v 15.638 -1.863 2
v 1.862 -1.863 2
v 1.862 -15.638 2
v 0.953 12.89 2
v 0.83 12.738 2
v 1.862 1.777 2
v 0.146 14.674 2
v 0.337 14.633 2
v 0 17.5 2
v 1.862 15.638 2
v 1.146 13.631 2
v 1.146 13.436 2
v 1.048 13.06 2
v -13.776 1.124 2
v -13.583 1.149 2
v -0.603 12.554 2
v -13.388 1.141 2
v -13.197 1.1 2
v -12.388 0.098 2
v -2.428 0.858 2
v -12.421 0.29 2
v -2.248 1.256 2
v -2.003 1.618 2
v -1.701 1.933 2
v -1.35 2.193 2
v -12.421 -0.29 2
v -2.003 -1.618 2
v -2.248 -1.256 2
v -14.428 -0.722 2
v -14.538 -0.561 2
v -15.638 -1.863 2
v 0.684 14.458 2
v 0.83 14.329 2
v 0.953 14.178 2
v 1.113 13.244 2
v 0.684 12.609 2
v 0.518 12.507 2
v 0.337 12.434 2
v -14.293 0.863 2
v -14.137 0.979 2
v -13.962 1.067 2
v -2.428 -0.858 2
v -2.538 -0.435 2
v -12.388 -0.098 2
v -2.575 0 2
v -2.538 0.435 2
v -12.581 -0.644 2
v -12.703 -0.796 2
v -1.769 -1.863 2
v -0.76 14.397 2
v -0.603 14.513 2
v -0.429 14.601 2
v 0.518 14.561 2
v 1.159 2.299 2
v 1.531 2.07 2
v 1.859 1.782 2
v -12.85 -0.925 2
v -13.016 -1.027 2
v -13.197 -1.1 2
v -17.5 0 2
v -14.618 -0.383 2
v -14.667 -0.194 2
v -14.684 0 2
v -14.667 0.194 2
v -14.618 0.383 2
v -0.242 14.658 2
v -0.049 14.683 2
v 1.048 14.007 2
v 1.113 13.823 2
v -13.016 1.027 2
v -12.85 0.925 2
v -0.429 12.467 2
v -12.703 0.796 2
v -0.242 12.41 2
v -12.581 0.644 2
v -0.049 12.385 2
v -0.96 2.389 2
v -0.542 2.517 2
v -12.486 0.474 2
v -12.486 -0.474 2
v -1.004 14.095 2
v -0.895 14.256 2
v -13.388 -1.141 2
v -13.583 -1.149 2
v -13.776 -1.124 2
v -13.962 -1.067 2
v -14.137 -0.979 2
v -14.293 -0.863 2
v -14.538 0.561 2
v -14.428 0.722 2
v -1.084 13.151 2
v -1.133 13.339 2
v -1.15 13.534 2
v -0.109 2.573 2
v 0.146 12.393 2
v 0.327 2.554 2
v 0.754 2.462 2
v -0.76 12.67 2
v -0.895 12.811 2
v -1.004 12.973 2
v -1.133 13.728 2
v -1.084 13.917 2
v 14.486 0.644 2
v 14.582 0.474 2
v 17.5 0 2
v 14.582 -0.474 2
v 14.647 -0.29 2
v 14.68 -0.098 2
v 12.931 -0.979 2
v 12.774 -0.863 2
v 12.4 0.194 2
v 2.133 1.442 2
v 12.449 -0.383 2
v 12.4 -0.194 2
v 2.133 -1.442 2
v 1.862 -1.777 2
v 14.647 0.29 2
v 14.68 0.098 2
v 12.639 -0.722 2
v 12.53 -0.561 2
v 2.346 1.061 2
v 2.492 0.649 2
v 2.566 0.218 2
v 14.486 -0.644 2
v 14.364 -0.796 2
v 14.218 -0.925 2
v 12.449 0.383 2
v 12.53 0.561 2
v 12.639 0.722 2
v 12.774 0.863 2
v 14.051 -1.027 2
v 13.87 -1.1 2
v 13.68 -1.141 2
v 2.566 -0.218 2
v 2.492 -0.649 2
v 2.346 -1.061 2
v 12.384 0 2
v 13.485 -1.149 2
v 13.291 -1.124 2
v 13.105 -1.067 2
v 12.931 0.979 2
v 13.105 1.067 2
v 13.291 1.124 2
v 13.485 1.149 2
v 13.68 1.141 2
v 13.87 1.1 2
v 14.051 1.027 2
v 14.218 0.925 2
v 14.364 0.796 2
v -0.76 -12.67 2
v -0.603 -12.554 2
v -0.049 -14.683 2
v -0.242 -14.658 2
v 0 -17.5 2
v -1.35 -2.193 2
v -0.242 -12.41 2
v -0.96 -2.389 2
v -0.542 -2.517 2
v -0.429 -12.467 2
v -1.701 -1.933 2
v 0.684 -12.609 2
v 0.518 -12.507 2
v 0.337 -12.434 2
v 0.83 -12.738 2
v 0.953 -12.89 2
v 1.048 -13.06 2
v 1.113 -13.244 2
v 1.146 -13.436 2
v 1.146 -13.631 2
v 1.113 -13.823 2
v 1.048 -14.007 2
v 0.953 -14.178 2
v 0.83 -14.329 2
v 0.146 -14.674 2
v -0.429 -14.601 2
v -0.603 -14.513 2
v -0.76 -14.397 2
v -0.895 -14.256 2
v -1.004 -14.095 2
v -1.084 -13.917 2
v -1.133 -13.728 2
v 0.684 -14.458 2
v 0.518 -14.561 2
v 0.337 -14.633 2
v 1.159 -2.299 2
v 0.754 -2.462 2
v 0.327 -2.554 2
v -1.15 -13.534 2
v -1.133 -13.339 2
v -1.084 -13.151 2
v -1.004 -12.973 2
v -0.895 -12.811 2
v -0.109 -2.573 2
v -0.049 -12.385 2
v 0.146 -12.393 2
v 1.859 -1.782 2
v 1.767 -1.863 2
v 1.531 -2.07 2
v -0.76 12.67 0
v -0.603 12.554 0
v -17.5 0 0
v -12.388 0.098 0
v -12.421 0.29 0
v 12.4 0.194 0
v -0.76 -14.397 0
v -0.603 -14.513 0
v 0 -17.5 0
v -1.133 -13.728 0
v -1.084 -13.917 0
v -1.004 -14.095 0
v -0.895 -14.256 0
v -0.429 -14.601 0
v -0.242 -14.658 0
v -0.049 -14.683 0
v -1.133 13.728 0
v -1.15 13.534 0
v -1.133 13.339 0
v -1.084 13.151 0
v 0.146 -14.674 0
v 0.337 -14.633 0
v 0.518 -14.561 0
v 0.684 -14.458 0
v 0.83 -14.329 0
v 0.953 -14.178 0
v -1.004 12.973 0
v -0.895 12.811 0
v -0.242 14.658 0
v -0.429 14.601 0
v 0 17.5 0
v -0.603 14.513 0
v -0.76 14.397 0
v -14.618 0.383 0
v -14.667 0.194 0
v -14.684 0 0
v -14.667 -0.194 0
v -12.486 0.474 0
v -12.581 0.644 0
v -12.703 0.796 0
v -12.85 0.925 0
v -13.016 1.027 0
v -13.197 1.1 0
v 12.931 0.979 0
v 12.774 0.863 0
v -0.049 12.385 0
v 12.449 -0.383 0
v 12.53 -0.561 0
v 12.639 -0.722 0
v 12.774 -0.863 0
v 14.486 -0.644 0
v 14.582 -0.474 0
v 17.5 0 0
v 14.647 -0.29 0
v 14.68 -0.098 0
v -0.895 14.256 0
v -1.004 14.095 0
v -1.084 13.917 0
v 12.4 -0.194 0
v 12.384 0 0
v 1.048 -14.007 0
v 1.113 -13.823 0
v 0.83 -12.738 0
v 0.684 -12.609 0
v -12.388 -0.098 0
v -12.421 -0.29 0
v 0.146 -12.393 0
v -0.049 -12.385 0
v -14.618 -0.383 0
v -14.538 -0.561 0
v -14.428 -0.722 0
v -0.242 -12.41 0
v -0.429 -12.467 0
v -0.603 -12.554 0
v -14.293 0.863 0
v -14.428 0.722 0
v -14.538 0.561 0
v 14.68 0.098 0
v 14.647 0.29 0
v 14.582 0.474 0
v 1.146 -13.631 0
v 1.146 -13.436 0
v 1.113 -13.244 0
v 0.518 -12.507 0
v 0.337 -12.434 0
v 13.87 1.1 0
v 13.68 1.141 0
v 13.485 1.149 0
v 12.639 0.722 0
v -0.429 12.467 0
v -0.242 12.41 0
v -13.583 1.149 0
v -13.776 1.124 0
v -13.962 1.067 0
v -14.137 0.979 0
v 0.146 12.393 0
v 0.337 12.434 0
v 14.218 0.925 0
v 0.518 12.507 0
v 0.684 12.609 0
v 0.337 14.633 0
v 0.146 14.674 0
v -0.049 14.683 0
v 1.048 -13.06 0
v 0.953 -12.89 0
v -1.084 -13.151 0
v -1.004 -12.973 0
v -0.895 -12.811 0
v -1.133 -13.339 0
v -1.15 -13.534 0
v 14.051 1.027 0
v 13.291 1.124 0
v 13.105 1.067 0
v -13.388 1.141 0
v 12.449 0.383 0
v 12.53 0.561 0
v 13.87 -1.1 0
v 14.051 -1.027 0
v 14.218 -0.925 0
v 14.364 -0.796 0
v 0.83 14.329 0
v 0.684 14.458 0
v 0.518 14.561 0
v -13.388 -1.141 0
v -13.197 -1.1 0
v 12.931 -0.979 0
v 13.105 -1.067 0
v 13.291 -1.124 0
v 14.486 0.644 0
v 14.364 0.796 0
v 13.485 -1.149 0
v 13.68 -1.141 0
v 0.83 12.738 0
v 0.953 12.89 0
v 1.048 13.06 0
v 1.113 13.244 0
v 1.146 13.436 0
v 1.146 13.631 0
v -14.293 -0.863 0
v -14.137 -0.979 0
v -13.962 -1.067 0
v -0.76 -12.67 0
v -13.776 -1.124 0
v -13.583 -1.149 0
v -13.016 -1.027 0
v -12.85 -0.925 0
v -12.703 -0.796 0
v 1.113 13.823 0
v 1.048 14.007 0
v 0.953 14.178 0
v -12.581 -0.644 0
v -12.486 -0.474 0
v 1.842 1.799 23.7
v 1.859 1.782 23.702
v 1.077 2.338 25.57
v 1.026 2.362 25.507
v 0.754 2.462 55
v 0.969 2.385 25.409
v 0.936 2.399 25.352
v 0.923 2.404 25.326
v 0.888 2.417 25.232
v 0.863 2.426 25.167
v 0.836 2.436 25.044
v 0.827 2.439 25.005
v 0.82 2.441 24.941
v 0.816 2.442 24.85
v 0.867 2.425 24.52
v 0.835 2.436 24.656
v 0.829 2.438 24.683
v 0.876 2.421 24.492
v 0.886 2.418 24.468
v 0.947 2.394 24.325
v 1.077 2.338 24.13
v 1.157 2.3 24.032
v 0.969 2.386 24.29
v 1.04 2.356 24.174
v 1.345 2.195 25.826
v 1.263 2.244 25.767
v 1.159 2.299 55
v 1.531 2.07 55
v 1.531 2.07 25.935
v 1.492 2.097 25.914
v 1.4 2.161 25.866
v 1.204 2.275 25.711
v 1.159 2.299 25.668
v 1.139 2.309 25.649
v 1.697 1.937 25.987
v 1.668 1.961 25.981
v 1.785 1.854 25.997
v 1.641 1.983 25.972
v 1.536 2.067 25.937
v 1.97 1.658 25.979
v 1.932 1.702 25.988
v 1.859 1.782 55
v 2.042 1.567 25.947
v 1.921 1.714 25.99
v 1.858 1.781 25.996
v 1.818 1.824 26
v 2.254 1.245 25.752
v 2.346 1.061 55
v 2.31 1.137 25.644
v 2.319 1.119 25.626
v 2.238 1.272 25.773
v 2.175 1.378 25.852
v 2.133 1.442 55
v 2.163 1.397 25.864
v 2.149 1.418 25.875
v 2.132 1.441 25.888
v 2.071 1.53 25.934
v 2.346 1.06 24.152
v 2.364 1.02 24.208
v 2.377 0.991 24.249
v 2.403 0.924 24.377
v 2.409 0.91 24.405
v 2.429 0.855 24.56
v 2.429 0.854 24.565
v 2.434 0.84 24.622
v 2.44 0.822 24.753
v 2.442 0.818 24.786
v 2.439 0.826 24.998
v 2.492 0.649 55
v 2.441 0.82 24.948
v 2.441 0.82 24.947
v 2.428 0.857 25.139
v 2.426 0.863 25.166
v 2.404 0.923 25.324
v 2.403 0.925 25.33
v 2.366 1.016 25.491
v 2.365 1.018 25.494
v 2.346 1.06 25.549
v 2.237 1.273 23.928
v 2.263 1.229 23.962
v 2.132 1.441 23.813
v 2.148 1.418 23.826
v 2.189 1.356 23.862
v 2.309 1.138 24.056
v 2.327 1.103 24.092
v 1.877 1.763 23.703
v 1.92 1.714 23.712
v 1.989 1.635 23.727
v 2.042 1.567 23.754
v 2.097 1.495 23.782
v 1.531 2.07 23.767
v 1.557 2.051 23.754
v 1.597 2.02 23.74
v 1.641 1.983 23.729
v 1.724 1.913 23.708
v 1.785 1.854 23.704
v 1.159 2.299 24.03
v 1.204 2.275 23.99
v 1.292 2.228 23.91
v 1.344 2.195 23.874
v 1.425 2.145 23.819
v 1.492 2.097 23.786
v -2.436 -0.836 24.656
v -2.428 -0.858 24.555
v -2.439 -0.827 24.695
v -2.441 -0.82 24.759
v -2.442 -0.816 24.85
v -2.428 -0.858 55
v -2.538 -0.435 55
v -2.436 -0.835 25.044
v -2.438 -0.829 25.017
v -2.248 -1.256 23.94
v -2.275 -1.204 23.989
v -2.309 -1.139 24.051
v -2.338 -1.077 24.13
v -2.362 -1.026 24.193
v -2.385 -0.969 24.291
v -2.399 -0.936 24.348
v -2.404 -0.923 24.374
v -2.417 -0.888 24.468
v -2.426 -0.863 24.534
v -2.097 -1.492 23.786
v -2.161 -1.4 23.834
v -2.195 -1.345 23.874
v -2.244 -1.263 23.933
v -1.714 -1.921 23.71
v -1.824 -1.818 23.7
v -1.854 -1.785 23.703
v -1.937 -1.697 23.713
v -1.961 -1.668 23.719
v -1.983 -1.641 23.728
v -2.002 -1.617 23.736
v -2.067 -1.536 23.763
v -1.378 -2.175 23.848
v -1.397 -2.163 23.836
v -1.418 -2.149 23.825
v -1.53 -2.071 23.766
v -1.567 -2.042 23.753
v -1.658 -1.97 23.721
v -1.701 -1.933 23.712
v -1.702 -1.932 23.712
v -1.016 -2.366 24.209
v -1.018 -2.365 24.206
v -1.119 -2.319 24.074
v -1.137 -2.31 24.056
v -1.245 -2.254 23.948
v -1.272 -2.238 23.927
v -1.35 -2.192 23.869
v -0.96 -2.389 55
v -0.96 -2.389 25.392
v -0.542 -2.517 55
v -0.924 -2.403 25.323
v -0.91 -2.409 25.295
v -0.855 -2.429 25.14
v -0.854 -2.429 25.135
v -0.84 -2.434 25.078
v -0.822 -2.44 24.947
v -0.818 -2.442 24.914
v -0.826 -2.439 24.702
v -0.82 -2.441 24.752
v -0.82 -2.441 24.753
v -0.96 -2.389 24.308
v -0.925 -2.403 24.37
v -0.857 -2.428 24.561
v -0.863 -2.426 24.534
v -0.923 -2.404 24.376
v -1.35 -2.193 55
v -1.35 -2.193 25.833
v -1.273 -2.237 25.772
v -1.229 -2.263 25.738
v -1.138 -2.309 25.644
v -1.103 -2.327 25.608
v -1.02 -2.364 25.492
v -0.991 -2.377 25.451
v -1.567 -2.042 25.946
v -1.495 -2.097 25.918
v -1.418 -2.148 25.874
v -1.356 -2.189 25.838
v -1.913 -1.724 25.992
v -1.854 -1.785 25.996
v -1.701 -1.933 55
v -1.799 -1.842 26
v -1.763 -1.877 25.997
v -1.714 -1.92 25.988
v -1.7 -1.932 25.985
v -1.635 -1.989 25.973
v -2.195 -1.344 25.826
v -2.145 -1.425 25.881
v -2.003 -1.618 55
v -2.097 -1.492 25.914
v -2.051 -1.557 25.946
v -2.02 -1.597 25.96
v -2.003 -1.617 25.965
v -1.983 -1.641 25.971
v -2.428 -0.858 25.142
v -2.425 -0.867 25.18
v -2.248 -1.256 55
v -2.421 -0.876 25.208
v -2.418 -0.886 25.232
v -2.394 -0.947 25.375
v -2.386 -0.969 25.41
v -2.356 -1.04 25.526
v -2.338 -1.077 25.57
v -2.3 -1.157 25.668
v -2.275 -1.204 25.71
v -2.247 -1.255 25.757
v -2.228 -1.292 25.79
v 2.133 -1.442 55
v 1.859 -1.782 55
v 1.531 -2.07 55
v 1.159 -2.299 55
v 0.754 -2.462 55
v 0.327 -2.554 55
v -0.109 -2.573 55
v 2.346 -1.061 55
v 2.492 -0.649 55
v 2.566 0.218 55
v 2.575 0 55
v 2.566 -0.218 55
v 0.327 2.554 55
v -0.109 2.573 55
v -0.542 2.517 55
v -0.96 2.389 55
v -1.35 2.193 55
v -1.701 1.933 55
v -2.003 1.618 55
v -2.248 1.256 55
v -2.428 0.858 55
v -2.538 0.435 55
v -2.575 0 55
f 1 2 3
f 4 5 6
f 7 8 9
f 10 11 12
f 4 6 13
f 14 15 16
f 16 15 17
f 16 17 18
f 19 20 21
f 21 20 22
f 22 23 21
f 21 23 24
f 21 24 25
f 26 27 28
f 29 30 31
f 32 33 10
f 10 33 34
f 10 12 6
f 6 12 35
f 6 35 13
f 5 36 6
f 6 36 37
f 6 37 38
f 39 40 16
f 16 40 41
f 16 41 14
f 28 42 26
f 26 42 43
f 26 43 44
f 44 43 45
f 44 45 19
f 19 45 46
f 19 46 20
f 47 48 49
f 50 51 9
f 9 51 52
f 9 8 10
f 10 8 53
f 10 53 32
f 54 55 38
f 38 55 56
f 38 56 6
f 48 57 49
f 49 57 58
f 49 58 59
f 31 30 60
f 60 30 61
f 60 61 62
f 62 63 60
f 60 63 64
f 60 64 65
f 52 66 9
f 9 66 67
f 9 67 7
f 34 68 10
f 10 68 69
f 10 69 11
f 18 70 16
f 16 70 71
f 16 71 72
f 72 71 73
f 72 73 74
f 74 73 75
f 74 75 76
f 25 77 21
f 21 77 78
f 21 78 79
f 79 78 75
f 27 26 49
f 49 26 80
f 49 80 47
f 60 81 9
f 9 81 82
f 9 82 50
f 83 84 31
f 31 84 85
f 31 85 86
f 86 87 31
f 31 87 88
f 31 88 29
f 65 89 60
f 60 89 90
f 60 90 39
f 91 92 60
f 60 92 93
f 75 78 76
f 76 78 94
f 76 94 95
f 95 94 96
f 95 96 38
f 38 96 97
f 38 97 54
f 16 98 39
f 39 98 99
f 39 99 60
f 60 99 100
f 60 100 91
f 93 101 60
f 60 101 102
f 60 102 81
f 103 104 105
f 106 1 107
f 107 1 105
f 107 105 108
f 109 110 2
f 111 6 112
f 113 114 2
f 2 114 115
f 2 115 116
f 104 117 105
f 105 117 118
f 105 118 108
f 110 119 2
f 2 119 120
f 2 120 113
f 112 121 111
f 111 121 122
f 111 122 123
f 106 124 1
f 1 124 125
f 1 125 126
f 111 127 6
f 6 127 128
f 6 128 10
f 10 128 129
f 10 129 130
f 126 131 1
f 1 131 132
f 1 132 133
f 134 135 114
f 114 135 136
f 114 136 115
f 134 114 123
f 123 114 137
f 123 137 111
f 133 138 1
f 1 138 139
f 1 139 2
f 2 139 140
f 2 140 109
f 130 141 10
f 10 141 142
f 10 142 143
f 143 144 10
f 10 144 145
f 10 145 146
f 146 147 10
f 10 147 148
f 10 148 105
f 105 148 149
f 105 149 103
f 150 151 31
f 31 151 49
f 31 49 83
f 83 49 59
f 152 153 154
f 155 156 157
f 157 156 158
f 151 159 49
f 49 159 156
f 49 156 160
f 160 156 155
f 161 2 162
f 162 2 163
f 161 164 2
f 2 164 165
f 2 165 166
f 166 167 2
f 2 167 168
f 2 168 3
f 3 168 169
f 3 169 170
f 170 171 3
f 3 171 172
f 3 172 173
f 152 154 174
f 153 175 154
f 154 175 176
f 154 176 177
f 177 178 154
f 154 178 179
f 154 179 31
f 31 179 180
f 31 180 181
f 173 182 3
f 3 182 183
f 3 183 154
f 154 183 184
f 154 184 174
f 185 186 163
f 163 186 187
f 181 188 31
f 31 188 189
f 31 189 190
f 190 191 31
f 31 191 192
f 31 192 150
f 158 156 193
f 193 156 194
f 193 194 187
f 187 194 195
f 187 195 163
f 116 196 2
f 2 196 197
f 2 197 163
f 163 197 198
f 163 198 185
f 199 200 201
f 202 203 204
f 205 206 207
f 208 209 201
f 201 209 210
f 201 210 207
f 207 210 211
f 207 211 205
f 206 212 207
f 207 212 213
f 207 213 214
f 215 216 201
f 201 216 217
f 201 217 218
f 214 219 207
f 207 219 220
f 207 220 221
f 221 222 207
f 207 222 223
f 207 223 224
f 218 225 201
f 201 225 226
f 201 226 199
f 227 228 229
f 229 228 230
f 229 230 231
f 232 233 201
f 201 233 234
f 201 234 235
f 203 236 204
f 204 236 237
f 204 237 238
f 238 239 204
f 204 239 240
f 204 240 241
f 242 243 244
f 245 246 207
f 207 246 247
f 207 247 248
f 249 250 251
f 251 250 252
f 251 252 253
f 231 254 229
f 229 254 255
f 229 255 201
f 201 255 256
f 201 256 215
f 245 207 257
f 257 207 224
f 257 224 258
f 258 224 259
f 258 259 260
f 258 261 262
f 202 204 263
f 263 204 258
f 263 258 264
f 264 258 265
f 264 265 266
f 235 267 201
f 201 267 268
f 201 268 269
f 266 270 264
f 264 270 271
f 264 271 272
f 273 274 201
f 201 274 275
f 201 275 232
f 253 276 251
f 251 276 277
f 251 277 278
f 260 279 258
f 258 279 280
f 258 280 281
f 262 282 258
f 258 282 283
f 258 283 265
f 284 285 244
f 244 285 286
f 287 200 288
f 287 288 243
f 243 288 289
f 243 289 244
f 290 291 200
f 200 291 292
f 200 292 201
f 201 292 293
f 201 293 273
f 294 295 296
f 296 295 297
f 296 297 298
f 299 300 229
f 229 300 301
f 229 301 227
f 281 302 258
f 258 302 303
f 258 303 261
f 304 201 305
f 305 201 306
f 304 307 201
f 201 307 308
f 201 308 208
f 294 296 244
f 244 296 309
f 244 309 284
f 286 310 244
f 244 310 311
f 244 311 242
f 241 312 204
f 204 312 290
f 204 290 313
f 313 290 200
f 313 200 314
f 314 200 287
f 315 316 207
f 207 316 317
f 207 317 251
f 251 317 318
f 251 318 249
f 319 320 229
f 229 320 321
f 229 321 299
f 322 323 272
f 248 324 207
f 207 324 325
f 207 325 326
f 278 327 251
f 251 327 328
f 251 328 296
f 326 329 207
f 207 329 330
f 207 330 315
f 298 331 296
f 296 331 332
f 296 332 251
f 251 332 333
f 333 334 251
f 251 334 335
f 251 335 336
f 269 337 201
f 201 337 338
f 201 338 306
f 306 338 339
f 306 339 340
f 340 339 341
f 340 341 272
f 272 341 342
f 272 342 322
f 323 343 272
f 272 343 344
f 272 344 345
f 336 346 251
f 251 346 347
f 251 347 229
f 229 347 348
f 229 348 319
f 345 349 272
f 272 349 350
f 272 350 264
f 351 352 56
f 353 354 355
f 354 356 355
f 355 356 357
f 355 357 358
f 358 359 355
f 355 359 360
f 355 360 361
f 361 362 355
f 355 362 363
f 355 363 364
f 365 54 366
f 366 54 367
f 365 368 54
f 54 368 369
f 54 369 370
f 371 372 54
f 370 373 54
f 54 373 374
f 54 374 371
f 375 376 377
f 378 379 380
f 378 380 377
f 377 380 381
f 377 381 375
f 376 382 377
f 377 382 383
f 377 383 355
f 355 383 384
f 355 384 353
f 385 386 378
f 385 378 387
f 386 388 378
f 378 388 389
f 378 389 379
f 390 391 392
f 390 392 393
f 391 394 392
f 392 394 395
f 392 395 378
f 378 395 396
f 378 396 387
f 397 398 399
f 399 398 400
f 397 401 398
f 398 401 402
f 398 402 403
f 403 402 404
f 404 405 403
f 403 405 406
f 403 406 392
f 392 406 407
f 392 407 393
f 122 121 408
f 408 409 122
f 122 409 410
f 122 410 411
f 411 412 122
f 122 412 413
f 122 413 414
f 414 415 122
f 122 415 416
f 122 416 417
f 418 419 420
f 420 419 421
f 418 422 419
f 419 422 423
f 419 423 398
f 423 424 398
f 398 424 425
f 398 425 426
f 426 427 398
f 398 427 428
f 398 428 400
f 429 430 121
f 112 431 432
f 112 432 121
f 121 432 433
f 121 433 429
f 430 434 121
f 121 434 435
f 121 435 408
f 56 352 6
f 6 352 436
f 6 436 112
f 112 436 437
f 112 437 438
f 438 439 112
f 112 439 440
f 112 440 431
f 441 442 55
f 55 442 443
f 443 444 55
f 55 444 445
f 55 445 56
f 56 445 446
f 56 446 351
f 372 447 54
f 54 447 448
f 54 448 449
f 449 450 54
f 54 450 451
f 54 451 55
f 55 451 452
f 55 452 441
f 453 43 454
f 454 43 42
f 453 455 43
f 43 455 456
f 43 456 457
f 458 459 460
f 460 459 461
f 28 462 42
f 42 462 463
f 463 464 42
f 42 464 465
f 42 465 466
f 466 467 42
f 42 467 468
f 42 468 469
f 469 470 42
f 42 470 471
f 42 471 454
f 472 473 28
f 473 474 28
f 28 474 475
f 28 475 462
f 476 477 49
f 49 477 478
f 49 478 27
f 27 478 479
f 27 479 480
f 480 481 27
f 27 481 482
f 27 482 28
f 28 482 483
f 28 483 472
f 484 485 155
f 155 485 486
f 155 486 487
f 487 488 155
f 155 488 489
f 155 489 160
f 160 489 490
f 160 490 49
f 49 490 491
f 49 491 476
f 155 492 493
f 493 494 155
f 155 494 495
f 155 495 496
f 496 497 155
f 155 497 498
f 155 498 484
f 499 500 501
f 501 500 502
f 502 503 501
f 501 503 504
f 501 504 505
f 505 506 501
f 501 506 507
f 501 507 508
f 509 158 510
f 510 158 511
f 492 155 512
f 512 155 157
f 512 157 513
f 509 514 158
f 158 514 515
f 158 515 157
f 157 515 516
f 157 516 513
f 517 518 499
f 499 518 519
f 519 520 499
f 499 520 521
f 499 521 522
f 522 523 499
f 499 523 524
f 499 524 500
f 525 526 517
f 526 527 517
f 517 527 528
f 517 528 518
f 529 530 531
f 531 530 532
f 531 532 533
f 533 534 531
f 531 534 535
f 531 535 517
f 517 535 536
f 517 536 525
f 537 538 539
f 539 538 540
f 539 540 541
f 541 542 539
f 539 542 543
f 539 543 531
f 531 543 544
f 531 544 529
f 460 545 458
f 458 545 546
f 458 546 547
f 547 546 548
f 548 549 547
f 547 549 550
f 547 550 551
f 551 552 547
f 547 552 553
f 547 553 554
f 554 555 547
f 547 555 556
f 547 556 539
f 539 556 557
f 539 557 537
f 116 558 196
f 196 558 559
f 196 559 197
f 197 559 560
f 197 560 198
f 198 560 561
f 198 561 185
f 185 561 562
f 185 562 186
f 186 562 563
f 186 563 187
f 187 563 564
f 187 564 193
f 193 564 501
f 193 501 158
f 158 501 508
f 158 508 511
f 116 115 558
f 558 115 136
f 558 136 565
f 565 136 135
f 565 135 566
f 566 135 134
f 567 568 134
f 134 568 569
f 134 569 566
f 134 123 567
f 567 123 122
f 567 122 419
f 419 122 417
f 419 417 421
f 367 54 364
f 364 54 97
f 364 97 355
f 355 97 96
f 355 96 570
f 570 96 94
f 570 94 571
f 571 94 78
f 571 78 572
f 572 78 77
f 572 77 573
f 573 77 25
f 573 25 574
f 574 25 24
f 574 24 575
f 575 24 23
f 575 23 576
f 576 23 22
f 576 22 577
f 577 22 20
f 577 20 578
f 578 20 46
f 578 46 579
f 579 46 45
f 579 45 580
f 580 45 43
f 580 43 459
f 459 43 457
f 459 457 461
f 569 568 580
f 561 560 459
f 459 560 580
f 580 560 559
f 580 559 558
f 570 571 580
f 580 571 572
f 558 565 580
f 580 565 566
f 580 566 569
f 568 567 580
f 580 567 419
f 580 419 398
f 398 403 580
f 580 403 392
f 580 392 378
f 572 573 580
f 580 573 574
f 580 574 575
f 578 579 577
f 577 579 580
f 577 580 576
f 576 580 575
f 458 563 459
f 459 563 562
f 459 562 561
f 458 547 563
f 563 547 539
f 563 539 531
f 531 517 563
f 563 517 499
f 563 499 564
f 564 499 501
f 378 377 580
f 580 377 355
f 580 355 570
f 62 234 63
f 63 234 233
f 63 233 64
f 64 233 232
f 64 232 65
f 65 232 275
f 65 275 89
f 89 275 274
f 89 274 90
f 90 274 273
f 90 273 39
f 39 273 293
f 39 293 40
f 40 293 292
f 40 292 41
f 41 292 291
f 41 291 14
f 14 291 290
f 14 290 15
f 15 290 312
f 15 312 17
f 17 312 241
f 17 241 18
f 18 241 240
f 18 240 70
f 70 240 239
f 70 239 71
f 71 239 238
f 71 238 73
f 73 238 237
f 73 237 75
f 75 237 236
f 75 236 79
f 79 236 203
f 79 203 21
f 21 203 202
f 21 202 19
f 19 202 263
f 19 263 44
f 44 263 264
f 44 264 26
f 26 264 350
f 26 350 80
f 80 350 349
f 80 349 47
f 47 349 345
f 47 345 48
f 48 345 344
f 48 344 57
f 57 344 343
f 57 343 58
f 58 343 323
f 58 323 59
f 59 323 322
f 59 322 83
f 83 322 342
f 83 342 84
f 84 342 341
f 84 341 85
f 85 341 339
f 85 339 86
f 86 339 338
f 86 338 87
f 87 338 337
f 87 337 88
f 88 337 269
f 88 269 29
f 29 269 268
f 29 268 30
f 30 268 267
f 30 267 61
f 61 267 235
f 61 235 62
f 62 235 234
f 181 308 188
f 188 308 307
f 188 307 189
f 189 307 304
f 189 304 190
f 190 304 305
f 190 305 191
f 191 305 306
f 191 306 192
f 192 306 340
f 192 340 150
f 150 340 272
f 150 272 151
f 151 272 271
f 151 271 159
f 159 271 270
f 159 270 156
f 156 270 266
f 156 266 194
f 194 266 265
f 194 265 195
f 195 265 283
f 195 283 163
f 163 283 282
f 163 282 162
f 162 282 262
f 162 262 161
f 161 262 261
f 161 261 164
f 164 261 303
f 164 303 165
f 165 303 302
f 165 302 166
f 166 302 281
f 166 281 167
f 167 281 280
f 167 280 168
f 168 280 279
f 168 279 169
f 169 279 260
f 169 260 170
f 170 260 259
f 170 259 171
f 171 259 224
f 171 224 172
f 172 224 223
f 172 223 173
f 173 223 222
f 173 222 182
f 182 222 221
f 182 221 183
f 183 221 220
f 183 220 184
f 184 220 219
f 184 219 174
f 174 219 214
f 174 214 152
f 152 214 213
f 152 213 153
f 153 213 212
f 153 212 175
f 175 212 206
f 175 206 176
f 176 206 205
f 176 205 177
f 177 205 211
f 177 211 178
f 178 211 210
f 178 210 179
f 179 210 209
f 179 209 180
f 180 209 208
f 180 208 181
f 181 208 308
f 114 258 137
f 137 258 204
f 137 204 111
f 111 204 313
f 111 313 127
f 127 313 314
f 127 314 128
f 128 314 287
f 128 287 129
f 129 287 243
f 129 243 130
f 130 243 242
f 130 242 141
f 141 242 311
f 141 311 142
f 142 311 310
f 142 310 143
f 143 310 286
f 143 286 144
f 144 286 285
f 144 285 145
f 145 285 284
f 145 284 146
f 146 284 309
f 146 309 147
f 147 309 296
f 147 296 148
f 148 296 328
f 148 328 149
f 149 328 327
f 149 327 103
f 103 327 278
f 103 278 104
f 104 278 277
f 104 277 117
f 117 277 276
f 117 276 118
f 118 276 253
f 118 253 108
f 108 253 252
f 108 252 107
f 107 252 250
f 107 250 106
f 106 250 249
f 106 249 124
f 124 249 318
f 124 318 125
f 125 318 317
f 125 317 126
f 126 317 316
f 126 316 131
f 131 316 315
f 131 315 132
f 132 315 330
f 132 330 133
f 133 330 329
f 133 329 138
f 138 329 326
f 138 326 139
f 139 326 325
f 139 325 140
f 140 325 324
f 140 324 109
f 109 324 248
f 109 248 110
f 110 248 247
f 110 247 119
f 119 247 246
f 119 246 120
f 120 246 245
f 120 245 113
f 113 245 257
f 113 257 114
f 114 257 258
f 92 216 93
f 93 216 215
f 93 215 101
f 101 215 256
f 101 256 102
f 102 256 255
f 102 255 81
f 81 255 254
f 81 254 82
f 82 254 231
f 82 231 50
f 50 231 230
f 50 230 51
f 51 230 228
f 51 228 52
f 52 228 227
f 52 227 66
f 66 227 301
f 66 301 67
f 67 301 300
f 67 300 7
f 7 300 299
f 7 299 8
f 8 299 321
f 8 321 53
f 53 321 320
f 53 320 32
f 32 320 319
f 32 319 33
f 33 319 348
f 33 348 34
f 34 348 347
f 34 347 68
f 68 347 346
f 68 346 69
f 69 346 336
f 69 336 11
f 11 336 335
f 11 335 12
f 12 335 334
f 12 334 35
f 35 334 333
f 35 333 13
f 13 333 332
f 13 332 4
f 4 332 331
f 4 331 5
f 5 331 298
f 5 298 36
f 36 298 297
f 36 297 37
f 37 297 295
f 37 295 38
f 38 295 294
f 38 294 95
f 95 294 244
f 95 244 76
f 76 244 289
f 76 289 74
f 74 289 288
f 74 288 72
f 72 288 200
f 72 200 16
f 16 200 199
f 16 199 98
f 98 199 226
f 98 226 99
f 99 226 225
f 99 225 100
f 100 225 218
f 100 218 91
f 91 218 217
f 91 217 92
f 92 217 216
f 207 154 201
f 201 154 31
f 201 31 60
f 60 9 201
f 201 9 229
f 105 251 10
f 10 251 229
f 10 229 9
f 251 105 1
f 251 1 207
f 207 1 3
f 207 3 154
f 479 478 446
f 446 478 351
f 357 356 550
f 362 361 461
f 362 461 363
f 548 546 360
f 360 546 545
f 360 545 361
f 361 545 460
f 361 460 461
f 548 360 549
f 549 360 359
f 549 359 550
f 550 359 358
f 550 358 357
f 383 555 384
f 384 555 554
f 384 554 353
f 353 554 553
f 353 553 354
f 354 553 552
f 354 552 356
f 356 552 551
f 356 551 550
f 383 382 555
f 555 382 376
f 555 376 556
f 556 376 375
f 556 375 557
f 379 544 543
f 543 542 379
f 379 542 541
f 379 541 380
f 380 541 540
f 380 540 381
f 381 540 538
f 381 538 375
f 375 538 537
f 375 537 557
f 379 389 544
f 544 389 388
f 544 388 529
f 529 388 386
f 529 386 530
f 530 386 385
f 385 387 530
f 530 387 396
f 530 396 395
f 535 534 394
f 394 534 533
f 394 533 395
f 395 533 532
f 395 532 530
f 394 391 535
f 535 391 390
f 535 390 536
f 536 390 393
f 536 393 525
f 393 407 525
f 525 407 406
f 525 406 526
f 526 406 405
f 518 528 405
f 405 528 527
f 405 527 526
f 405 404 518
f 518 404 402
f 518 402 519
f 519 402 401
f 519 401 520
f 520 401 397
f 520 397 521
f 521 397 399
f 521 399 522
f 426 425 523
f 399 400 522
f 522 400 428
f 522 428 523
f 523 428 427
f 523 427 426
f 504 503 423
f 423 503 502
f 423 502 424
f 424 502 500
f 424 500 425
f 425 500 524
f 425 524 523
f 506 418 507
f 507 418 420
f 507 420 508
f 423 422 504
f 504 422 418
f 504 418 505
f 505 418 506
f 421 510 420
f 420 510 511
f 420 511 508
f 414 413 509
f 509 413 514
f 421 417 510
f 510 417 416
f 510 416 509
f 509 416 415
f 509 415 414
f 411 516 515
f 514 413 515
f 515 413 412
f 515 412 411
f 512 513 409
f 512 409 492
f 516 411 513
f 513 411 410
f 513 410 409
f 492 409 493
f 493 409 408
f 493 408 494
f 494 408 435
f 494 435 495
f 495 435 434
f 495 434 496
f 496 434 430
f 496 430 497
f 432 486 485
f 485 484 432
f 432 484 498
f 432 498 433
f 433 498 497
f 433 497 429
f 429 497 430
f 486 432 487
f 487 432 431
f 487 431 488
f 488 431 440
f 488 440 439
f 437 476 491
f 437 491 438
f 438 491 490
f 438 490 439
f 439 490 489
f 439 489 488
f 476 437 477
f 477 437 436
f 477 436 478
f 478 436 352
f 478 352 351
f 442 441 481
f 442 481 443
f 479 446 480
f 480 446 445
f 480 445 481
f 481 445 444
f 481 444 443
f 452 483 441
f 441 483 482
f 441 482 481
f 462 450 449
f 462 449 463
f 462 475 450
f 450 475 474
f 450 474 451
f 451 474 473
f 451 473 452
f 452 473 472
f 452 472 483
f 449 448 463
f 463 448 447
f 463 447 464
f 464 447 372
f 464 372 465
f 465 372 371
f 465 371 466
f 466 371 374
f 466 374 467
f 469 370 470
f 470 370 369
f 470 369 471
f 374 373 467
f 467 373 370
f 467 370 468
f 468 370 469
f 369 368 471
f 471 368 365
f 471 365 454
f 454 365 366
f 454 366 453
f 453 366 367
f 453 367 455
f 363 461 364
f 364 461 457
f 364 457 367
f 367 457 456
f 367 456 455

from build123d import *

# Parameters (mm, degrees)
SKETCH_1_R          = 2.575
EXTRUDE_1_DEPTH     = 55
SKETCH_2_W          = 35
SKETCH_2_H          = 35
EXTRUDE_2_DEPTH     = 2
SKETCH_8_R          = 1.15
CUT_EXTRUDE_5_DEPTH = 5
SKETCH_10_OUTSIDE_W = 51.798
SKETCH_10_OUTSIDE_H = 51.798
CUT_EXTRUDE_6_DEPTH = 5
SKETCH_14_R         = 1.15
CUT_EXTRUDE_7_DEPTH = 20


with BuildPart() as part:
    # 스케치1 → 보스-돌출1 (new body)
    with BuildSketch(Plane.XY):
        Circle(SKETCH_1_R)
    extrude(amount=EXTRUDE_1_DEPTH)

    # 스케치2 → 보스-돌출2 (add)
    with BuildSketch(Plane(origin=(0, 0, 0), x_dir=(-1, 0, 0), z_dir=(0, 0, -1))):
        Rectangle(SKETCH_2_W, SKETCH_2_H)
    extrude(amount=-EXTRUDE_2_DEPTH)

    # 스케치8 → 컷-돌출5 (cut)
    with BuildSketch(Plane(origin=(0, 0, 0), x_dir=(-1, 0, 0), z_dir=(0, 0, -1))):
        with Locations((13.533711803, 0)):
            Circle(SKETCH_8_R)
        with Locations((0, -13.533711803)):
            Circle(SKETCH_8_R)
        with Locations((-13.533711803, 0)):
            Circle(SKETCH_8_R)
        with Locations((0, 13.533711803)):
            Circle(SKETCH_8_R)
    extrude(amount=-CUT_EXTRUDE_5_DEPTH, mode=Mode.SUBTRACT)

    # 스케치10 outside → 컷-돌출6 (cut)
    with BuildSketch(Plane.XY.offset(2)):
        Rectangle(SKETCH_10_OUTSIDE_W, SKETCH_10_OUTSIDE_H)
        Polygon((-17.5, 0), (0, 17.5), (17.5, 0), (0, -17.5), align=None, mode=Mode.SUBTRACT)
    extrude(amount=-CUT_EXTRUDE_6_DEPTH, mode=Mode.SUBTRACT)

    # 스케치14 → 컷-돌출7 (cut)
    with BuildSketch(Plane(origin=(8.75, 8.75, 0), x_dir=(0.7071067811865475, -0.7071067811865477, 0), z_dir=(0.7071067811865477, 0.7071067811865475, 0))):
        with Locations(Location((0, -24.85, 0), (0, 0, 180))):
            Circle(SKETCH_14_R)
    extrude(amount=-CUT_EXTRUDE_7_DEPTH, mode=Mode.SUBTRACT)


solid = part.part
